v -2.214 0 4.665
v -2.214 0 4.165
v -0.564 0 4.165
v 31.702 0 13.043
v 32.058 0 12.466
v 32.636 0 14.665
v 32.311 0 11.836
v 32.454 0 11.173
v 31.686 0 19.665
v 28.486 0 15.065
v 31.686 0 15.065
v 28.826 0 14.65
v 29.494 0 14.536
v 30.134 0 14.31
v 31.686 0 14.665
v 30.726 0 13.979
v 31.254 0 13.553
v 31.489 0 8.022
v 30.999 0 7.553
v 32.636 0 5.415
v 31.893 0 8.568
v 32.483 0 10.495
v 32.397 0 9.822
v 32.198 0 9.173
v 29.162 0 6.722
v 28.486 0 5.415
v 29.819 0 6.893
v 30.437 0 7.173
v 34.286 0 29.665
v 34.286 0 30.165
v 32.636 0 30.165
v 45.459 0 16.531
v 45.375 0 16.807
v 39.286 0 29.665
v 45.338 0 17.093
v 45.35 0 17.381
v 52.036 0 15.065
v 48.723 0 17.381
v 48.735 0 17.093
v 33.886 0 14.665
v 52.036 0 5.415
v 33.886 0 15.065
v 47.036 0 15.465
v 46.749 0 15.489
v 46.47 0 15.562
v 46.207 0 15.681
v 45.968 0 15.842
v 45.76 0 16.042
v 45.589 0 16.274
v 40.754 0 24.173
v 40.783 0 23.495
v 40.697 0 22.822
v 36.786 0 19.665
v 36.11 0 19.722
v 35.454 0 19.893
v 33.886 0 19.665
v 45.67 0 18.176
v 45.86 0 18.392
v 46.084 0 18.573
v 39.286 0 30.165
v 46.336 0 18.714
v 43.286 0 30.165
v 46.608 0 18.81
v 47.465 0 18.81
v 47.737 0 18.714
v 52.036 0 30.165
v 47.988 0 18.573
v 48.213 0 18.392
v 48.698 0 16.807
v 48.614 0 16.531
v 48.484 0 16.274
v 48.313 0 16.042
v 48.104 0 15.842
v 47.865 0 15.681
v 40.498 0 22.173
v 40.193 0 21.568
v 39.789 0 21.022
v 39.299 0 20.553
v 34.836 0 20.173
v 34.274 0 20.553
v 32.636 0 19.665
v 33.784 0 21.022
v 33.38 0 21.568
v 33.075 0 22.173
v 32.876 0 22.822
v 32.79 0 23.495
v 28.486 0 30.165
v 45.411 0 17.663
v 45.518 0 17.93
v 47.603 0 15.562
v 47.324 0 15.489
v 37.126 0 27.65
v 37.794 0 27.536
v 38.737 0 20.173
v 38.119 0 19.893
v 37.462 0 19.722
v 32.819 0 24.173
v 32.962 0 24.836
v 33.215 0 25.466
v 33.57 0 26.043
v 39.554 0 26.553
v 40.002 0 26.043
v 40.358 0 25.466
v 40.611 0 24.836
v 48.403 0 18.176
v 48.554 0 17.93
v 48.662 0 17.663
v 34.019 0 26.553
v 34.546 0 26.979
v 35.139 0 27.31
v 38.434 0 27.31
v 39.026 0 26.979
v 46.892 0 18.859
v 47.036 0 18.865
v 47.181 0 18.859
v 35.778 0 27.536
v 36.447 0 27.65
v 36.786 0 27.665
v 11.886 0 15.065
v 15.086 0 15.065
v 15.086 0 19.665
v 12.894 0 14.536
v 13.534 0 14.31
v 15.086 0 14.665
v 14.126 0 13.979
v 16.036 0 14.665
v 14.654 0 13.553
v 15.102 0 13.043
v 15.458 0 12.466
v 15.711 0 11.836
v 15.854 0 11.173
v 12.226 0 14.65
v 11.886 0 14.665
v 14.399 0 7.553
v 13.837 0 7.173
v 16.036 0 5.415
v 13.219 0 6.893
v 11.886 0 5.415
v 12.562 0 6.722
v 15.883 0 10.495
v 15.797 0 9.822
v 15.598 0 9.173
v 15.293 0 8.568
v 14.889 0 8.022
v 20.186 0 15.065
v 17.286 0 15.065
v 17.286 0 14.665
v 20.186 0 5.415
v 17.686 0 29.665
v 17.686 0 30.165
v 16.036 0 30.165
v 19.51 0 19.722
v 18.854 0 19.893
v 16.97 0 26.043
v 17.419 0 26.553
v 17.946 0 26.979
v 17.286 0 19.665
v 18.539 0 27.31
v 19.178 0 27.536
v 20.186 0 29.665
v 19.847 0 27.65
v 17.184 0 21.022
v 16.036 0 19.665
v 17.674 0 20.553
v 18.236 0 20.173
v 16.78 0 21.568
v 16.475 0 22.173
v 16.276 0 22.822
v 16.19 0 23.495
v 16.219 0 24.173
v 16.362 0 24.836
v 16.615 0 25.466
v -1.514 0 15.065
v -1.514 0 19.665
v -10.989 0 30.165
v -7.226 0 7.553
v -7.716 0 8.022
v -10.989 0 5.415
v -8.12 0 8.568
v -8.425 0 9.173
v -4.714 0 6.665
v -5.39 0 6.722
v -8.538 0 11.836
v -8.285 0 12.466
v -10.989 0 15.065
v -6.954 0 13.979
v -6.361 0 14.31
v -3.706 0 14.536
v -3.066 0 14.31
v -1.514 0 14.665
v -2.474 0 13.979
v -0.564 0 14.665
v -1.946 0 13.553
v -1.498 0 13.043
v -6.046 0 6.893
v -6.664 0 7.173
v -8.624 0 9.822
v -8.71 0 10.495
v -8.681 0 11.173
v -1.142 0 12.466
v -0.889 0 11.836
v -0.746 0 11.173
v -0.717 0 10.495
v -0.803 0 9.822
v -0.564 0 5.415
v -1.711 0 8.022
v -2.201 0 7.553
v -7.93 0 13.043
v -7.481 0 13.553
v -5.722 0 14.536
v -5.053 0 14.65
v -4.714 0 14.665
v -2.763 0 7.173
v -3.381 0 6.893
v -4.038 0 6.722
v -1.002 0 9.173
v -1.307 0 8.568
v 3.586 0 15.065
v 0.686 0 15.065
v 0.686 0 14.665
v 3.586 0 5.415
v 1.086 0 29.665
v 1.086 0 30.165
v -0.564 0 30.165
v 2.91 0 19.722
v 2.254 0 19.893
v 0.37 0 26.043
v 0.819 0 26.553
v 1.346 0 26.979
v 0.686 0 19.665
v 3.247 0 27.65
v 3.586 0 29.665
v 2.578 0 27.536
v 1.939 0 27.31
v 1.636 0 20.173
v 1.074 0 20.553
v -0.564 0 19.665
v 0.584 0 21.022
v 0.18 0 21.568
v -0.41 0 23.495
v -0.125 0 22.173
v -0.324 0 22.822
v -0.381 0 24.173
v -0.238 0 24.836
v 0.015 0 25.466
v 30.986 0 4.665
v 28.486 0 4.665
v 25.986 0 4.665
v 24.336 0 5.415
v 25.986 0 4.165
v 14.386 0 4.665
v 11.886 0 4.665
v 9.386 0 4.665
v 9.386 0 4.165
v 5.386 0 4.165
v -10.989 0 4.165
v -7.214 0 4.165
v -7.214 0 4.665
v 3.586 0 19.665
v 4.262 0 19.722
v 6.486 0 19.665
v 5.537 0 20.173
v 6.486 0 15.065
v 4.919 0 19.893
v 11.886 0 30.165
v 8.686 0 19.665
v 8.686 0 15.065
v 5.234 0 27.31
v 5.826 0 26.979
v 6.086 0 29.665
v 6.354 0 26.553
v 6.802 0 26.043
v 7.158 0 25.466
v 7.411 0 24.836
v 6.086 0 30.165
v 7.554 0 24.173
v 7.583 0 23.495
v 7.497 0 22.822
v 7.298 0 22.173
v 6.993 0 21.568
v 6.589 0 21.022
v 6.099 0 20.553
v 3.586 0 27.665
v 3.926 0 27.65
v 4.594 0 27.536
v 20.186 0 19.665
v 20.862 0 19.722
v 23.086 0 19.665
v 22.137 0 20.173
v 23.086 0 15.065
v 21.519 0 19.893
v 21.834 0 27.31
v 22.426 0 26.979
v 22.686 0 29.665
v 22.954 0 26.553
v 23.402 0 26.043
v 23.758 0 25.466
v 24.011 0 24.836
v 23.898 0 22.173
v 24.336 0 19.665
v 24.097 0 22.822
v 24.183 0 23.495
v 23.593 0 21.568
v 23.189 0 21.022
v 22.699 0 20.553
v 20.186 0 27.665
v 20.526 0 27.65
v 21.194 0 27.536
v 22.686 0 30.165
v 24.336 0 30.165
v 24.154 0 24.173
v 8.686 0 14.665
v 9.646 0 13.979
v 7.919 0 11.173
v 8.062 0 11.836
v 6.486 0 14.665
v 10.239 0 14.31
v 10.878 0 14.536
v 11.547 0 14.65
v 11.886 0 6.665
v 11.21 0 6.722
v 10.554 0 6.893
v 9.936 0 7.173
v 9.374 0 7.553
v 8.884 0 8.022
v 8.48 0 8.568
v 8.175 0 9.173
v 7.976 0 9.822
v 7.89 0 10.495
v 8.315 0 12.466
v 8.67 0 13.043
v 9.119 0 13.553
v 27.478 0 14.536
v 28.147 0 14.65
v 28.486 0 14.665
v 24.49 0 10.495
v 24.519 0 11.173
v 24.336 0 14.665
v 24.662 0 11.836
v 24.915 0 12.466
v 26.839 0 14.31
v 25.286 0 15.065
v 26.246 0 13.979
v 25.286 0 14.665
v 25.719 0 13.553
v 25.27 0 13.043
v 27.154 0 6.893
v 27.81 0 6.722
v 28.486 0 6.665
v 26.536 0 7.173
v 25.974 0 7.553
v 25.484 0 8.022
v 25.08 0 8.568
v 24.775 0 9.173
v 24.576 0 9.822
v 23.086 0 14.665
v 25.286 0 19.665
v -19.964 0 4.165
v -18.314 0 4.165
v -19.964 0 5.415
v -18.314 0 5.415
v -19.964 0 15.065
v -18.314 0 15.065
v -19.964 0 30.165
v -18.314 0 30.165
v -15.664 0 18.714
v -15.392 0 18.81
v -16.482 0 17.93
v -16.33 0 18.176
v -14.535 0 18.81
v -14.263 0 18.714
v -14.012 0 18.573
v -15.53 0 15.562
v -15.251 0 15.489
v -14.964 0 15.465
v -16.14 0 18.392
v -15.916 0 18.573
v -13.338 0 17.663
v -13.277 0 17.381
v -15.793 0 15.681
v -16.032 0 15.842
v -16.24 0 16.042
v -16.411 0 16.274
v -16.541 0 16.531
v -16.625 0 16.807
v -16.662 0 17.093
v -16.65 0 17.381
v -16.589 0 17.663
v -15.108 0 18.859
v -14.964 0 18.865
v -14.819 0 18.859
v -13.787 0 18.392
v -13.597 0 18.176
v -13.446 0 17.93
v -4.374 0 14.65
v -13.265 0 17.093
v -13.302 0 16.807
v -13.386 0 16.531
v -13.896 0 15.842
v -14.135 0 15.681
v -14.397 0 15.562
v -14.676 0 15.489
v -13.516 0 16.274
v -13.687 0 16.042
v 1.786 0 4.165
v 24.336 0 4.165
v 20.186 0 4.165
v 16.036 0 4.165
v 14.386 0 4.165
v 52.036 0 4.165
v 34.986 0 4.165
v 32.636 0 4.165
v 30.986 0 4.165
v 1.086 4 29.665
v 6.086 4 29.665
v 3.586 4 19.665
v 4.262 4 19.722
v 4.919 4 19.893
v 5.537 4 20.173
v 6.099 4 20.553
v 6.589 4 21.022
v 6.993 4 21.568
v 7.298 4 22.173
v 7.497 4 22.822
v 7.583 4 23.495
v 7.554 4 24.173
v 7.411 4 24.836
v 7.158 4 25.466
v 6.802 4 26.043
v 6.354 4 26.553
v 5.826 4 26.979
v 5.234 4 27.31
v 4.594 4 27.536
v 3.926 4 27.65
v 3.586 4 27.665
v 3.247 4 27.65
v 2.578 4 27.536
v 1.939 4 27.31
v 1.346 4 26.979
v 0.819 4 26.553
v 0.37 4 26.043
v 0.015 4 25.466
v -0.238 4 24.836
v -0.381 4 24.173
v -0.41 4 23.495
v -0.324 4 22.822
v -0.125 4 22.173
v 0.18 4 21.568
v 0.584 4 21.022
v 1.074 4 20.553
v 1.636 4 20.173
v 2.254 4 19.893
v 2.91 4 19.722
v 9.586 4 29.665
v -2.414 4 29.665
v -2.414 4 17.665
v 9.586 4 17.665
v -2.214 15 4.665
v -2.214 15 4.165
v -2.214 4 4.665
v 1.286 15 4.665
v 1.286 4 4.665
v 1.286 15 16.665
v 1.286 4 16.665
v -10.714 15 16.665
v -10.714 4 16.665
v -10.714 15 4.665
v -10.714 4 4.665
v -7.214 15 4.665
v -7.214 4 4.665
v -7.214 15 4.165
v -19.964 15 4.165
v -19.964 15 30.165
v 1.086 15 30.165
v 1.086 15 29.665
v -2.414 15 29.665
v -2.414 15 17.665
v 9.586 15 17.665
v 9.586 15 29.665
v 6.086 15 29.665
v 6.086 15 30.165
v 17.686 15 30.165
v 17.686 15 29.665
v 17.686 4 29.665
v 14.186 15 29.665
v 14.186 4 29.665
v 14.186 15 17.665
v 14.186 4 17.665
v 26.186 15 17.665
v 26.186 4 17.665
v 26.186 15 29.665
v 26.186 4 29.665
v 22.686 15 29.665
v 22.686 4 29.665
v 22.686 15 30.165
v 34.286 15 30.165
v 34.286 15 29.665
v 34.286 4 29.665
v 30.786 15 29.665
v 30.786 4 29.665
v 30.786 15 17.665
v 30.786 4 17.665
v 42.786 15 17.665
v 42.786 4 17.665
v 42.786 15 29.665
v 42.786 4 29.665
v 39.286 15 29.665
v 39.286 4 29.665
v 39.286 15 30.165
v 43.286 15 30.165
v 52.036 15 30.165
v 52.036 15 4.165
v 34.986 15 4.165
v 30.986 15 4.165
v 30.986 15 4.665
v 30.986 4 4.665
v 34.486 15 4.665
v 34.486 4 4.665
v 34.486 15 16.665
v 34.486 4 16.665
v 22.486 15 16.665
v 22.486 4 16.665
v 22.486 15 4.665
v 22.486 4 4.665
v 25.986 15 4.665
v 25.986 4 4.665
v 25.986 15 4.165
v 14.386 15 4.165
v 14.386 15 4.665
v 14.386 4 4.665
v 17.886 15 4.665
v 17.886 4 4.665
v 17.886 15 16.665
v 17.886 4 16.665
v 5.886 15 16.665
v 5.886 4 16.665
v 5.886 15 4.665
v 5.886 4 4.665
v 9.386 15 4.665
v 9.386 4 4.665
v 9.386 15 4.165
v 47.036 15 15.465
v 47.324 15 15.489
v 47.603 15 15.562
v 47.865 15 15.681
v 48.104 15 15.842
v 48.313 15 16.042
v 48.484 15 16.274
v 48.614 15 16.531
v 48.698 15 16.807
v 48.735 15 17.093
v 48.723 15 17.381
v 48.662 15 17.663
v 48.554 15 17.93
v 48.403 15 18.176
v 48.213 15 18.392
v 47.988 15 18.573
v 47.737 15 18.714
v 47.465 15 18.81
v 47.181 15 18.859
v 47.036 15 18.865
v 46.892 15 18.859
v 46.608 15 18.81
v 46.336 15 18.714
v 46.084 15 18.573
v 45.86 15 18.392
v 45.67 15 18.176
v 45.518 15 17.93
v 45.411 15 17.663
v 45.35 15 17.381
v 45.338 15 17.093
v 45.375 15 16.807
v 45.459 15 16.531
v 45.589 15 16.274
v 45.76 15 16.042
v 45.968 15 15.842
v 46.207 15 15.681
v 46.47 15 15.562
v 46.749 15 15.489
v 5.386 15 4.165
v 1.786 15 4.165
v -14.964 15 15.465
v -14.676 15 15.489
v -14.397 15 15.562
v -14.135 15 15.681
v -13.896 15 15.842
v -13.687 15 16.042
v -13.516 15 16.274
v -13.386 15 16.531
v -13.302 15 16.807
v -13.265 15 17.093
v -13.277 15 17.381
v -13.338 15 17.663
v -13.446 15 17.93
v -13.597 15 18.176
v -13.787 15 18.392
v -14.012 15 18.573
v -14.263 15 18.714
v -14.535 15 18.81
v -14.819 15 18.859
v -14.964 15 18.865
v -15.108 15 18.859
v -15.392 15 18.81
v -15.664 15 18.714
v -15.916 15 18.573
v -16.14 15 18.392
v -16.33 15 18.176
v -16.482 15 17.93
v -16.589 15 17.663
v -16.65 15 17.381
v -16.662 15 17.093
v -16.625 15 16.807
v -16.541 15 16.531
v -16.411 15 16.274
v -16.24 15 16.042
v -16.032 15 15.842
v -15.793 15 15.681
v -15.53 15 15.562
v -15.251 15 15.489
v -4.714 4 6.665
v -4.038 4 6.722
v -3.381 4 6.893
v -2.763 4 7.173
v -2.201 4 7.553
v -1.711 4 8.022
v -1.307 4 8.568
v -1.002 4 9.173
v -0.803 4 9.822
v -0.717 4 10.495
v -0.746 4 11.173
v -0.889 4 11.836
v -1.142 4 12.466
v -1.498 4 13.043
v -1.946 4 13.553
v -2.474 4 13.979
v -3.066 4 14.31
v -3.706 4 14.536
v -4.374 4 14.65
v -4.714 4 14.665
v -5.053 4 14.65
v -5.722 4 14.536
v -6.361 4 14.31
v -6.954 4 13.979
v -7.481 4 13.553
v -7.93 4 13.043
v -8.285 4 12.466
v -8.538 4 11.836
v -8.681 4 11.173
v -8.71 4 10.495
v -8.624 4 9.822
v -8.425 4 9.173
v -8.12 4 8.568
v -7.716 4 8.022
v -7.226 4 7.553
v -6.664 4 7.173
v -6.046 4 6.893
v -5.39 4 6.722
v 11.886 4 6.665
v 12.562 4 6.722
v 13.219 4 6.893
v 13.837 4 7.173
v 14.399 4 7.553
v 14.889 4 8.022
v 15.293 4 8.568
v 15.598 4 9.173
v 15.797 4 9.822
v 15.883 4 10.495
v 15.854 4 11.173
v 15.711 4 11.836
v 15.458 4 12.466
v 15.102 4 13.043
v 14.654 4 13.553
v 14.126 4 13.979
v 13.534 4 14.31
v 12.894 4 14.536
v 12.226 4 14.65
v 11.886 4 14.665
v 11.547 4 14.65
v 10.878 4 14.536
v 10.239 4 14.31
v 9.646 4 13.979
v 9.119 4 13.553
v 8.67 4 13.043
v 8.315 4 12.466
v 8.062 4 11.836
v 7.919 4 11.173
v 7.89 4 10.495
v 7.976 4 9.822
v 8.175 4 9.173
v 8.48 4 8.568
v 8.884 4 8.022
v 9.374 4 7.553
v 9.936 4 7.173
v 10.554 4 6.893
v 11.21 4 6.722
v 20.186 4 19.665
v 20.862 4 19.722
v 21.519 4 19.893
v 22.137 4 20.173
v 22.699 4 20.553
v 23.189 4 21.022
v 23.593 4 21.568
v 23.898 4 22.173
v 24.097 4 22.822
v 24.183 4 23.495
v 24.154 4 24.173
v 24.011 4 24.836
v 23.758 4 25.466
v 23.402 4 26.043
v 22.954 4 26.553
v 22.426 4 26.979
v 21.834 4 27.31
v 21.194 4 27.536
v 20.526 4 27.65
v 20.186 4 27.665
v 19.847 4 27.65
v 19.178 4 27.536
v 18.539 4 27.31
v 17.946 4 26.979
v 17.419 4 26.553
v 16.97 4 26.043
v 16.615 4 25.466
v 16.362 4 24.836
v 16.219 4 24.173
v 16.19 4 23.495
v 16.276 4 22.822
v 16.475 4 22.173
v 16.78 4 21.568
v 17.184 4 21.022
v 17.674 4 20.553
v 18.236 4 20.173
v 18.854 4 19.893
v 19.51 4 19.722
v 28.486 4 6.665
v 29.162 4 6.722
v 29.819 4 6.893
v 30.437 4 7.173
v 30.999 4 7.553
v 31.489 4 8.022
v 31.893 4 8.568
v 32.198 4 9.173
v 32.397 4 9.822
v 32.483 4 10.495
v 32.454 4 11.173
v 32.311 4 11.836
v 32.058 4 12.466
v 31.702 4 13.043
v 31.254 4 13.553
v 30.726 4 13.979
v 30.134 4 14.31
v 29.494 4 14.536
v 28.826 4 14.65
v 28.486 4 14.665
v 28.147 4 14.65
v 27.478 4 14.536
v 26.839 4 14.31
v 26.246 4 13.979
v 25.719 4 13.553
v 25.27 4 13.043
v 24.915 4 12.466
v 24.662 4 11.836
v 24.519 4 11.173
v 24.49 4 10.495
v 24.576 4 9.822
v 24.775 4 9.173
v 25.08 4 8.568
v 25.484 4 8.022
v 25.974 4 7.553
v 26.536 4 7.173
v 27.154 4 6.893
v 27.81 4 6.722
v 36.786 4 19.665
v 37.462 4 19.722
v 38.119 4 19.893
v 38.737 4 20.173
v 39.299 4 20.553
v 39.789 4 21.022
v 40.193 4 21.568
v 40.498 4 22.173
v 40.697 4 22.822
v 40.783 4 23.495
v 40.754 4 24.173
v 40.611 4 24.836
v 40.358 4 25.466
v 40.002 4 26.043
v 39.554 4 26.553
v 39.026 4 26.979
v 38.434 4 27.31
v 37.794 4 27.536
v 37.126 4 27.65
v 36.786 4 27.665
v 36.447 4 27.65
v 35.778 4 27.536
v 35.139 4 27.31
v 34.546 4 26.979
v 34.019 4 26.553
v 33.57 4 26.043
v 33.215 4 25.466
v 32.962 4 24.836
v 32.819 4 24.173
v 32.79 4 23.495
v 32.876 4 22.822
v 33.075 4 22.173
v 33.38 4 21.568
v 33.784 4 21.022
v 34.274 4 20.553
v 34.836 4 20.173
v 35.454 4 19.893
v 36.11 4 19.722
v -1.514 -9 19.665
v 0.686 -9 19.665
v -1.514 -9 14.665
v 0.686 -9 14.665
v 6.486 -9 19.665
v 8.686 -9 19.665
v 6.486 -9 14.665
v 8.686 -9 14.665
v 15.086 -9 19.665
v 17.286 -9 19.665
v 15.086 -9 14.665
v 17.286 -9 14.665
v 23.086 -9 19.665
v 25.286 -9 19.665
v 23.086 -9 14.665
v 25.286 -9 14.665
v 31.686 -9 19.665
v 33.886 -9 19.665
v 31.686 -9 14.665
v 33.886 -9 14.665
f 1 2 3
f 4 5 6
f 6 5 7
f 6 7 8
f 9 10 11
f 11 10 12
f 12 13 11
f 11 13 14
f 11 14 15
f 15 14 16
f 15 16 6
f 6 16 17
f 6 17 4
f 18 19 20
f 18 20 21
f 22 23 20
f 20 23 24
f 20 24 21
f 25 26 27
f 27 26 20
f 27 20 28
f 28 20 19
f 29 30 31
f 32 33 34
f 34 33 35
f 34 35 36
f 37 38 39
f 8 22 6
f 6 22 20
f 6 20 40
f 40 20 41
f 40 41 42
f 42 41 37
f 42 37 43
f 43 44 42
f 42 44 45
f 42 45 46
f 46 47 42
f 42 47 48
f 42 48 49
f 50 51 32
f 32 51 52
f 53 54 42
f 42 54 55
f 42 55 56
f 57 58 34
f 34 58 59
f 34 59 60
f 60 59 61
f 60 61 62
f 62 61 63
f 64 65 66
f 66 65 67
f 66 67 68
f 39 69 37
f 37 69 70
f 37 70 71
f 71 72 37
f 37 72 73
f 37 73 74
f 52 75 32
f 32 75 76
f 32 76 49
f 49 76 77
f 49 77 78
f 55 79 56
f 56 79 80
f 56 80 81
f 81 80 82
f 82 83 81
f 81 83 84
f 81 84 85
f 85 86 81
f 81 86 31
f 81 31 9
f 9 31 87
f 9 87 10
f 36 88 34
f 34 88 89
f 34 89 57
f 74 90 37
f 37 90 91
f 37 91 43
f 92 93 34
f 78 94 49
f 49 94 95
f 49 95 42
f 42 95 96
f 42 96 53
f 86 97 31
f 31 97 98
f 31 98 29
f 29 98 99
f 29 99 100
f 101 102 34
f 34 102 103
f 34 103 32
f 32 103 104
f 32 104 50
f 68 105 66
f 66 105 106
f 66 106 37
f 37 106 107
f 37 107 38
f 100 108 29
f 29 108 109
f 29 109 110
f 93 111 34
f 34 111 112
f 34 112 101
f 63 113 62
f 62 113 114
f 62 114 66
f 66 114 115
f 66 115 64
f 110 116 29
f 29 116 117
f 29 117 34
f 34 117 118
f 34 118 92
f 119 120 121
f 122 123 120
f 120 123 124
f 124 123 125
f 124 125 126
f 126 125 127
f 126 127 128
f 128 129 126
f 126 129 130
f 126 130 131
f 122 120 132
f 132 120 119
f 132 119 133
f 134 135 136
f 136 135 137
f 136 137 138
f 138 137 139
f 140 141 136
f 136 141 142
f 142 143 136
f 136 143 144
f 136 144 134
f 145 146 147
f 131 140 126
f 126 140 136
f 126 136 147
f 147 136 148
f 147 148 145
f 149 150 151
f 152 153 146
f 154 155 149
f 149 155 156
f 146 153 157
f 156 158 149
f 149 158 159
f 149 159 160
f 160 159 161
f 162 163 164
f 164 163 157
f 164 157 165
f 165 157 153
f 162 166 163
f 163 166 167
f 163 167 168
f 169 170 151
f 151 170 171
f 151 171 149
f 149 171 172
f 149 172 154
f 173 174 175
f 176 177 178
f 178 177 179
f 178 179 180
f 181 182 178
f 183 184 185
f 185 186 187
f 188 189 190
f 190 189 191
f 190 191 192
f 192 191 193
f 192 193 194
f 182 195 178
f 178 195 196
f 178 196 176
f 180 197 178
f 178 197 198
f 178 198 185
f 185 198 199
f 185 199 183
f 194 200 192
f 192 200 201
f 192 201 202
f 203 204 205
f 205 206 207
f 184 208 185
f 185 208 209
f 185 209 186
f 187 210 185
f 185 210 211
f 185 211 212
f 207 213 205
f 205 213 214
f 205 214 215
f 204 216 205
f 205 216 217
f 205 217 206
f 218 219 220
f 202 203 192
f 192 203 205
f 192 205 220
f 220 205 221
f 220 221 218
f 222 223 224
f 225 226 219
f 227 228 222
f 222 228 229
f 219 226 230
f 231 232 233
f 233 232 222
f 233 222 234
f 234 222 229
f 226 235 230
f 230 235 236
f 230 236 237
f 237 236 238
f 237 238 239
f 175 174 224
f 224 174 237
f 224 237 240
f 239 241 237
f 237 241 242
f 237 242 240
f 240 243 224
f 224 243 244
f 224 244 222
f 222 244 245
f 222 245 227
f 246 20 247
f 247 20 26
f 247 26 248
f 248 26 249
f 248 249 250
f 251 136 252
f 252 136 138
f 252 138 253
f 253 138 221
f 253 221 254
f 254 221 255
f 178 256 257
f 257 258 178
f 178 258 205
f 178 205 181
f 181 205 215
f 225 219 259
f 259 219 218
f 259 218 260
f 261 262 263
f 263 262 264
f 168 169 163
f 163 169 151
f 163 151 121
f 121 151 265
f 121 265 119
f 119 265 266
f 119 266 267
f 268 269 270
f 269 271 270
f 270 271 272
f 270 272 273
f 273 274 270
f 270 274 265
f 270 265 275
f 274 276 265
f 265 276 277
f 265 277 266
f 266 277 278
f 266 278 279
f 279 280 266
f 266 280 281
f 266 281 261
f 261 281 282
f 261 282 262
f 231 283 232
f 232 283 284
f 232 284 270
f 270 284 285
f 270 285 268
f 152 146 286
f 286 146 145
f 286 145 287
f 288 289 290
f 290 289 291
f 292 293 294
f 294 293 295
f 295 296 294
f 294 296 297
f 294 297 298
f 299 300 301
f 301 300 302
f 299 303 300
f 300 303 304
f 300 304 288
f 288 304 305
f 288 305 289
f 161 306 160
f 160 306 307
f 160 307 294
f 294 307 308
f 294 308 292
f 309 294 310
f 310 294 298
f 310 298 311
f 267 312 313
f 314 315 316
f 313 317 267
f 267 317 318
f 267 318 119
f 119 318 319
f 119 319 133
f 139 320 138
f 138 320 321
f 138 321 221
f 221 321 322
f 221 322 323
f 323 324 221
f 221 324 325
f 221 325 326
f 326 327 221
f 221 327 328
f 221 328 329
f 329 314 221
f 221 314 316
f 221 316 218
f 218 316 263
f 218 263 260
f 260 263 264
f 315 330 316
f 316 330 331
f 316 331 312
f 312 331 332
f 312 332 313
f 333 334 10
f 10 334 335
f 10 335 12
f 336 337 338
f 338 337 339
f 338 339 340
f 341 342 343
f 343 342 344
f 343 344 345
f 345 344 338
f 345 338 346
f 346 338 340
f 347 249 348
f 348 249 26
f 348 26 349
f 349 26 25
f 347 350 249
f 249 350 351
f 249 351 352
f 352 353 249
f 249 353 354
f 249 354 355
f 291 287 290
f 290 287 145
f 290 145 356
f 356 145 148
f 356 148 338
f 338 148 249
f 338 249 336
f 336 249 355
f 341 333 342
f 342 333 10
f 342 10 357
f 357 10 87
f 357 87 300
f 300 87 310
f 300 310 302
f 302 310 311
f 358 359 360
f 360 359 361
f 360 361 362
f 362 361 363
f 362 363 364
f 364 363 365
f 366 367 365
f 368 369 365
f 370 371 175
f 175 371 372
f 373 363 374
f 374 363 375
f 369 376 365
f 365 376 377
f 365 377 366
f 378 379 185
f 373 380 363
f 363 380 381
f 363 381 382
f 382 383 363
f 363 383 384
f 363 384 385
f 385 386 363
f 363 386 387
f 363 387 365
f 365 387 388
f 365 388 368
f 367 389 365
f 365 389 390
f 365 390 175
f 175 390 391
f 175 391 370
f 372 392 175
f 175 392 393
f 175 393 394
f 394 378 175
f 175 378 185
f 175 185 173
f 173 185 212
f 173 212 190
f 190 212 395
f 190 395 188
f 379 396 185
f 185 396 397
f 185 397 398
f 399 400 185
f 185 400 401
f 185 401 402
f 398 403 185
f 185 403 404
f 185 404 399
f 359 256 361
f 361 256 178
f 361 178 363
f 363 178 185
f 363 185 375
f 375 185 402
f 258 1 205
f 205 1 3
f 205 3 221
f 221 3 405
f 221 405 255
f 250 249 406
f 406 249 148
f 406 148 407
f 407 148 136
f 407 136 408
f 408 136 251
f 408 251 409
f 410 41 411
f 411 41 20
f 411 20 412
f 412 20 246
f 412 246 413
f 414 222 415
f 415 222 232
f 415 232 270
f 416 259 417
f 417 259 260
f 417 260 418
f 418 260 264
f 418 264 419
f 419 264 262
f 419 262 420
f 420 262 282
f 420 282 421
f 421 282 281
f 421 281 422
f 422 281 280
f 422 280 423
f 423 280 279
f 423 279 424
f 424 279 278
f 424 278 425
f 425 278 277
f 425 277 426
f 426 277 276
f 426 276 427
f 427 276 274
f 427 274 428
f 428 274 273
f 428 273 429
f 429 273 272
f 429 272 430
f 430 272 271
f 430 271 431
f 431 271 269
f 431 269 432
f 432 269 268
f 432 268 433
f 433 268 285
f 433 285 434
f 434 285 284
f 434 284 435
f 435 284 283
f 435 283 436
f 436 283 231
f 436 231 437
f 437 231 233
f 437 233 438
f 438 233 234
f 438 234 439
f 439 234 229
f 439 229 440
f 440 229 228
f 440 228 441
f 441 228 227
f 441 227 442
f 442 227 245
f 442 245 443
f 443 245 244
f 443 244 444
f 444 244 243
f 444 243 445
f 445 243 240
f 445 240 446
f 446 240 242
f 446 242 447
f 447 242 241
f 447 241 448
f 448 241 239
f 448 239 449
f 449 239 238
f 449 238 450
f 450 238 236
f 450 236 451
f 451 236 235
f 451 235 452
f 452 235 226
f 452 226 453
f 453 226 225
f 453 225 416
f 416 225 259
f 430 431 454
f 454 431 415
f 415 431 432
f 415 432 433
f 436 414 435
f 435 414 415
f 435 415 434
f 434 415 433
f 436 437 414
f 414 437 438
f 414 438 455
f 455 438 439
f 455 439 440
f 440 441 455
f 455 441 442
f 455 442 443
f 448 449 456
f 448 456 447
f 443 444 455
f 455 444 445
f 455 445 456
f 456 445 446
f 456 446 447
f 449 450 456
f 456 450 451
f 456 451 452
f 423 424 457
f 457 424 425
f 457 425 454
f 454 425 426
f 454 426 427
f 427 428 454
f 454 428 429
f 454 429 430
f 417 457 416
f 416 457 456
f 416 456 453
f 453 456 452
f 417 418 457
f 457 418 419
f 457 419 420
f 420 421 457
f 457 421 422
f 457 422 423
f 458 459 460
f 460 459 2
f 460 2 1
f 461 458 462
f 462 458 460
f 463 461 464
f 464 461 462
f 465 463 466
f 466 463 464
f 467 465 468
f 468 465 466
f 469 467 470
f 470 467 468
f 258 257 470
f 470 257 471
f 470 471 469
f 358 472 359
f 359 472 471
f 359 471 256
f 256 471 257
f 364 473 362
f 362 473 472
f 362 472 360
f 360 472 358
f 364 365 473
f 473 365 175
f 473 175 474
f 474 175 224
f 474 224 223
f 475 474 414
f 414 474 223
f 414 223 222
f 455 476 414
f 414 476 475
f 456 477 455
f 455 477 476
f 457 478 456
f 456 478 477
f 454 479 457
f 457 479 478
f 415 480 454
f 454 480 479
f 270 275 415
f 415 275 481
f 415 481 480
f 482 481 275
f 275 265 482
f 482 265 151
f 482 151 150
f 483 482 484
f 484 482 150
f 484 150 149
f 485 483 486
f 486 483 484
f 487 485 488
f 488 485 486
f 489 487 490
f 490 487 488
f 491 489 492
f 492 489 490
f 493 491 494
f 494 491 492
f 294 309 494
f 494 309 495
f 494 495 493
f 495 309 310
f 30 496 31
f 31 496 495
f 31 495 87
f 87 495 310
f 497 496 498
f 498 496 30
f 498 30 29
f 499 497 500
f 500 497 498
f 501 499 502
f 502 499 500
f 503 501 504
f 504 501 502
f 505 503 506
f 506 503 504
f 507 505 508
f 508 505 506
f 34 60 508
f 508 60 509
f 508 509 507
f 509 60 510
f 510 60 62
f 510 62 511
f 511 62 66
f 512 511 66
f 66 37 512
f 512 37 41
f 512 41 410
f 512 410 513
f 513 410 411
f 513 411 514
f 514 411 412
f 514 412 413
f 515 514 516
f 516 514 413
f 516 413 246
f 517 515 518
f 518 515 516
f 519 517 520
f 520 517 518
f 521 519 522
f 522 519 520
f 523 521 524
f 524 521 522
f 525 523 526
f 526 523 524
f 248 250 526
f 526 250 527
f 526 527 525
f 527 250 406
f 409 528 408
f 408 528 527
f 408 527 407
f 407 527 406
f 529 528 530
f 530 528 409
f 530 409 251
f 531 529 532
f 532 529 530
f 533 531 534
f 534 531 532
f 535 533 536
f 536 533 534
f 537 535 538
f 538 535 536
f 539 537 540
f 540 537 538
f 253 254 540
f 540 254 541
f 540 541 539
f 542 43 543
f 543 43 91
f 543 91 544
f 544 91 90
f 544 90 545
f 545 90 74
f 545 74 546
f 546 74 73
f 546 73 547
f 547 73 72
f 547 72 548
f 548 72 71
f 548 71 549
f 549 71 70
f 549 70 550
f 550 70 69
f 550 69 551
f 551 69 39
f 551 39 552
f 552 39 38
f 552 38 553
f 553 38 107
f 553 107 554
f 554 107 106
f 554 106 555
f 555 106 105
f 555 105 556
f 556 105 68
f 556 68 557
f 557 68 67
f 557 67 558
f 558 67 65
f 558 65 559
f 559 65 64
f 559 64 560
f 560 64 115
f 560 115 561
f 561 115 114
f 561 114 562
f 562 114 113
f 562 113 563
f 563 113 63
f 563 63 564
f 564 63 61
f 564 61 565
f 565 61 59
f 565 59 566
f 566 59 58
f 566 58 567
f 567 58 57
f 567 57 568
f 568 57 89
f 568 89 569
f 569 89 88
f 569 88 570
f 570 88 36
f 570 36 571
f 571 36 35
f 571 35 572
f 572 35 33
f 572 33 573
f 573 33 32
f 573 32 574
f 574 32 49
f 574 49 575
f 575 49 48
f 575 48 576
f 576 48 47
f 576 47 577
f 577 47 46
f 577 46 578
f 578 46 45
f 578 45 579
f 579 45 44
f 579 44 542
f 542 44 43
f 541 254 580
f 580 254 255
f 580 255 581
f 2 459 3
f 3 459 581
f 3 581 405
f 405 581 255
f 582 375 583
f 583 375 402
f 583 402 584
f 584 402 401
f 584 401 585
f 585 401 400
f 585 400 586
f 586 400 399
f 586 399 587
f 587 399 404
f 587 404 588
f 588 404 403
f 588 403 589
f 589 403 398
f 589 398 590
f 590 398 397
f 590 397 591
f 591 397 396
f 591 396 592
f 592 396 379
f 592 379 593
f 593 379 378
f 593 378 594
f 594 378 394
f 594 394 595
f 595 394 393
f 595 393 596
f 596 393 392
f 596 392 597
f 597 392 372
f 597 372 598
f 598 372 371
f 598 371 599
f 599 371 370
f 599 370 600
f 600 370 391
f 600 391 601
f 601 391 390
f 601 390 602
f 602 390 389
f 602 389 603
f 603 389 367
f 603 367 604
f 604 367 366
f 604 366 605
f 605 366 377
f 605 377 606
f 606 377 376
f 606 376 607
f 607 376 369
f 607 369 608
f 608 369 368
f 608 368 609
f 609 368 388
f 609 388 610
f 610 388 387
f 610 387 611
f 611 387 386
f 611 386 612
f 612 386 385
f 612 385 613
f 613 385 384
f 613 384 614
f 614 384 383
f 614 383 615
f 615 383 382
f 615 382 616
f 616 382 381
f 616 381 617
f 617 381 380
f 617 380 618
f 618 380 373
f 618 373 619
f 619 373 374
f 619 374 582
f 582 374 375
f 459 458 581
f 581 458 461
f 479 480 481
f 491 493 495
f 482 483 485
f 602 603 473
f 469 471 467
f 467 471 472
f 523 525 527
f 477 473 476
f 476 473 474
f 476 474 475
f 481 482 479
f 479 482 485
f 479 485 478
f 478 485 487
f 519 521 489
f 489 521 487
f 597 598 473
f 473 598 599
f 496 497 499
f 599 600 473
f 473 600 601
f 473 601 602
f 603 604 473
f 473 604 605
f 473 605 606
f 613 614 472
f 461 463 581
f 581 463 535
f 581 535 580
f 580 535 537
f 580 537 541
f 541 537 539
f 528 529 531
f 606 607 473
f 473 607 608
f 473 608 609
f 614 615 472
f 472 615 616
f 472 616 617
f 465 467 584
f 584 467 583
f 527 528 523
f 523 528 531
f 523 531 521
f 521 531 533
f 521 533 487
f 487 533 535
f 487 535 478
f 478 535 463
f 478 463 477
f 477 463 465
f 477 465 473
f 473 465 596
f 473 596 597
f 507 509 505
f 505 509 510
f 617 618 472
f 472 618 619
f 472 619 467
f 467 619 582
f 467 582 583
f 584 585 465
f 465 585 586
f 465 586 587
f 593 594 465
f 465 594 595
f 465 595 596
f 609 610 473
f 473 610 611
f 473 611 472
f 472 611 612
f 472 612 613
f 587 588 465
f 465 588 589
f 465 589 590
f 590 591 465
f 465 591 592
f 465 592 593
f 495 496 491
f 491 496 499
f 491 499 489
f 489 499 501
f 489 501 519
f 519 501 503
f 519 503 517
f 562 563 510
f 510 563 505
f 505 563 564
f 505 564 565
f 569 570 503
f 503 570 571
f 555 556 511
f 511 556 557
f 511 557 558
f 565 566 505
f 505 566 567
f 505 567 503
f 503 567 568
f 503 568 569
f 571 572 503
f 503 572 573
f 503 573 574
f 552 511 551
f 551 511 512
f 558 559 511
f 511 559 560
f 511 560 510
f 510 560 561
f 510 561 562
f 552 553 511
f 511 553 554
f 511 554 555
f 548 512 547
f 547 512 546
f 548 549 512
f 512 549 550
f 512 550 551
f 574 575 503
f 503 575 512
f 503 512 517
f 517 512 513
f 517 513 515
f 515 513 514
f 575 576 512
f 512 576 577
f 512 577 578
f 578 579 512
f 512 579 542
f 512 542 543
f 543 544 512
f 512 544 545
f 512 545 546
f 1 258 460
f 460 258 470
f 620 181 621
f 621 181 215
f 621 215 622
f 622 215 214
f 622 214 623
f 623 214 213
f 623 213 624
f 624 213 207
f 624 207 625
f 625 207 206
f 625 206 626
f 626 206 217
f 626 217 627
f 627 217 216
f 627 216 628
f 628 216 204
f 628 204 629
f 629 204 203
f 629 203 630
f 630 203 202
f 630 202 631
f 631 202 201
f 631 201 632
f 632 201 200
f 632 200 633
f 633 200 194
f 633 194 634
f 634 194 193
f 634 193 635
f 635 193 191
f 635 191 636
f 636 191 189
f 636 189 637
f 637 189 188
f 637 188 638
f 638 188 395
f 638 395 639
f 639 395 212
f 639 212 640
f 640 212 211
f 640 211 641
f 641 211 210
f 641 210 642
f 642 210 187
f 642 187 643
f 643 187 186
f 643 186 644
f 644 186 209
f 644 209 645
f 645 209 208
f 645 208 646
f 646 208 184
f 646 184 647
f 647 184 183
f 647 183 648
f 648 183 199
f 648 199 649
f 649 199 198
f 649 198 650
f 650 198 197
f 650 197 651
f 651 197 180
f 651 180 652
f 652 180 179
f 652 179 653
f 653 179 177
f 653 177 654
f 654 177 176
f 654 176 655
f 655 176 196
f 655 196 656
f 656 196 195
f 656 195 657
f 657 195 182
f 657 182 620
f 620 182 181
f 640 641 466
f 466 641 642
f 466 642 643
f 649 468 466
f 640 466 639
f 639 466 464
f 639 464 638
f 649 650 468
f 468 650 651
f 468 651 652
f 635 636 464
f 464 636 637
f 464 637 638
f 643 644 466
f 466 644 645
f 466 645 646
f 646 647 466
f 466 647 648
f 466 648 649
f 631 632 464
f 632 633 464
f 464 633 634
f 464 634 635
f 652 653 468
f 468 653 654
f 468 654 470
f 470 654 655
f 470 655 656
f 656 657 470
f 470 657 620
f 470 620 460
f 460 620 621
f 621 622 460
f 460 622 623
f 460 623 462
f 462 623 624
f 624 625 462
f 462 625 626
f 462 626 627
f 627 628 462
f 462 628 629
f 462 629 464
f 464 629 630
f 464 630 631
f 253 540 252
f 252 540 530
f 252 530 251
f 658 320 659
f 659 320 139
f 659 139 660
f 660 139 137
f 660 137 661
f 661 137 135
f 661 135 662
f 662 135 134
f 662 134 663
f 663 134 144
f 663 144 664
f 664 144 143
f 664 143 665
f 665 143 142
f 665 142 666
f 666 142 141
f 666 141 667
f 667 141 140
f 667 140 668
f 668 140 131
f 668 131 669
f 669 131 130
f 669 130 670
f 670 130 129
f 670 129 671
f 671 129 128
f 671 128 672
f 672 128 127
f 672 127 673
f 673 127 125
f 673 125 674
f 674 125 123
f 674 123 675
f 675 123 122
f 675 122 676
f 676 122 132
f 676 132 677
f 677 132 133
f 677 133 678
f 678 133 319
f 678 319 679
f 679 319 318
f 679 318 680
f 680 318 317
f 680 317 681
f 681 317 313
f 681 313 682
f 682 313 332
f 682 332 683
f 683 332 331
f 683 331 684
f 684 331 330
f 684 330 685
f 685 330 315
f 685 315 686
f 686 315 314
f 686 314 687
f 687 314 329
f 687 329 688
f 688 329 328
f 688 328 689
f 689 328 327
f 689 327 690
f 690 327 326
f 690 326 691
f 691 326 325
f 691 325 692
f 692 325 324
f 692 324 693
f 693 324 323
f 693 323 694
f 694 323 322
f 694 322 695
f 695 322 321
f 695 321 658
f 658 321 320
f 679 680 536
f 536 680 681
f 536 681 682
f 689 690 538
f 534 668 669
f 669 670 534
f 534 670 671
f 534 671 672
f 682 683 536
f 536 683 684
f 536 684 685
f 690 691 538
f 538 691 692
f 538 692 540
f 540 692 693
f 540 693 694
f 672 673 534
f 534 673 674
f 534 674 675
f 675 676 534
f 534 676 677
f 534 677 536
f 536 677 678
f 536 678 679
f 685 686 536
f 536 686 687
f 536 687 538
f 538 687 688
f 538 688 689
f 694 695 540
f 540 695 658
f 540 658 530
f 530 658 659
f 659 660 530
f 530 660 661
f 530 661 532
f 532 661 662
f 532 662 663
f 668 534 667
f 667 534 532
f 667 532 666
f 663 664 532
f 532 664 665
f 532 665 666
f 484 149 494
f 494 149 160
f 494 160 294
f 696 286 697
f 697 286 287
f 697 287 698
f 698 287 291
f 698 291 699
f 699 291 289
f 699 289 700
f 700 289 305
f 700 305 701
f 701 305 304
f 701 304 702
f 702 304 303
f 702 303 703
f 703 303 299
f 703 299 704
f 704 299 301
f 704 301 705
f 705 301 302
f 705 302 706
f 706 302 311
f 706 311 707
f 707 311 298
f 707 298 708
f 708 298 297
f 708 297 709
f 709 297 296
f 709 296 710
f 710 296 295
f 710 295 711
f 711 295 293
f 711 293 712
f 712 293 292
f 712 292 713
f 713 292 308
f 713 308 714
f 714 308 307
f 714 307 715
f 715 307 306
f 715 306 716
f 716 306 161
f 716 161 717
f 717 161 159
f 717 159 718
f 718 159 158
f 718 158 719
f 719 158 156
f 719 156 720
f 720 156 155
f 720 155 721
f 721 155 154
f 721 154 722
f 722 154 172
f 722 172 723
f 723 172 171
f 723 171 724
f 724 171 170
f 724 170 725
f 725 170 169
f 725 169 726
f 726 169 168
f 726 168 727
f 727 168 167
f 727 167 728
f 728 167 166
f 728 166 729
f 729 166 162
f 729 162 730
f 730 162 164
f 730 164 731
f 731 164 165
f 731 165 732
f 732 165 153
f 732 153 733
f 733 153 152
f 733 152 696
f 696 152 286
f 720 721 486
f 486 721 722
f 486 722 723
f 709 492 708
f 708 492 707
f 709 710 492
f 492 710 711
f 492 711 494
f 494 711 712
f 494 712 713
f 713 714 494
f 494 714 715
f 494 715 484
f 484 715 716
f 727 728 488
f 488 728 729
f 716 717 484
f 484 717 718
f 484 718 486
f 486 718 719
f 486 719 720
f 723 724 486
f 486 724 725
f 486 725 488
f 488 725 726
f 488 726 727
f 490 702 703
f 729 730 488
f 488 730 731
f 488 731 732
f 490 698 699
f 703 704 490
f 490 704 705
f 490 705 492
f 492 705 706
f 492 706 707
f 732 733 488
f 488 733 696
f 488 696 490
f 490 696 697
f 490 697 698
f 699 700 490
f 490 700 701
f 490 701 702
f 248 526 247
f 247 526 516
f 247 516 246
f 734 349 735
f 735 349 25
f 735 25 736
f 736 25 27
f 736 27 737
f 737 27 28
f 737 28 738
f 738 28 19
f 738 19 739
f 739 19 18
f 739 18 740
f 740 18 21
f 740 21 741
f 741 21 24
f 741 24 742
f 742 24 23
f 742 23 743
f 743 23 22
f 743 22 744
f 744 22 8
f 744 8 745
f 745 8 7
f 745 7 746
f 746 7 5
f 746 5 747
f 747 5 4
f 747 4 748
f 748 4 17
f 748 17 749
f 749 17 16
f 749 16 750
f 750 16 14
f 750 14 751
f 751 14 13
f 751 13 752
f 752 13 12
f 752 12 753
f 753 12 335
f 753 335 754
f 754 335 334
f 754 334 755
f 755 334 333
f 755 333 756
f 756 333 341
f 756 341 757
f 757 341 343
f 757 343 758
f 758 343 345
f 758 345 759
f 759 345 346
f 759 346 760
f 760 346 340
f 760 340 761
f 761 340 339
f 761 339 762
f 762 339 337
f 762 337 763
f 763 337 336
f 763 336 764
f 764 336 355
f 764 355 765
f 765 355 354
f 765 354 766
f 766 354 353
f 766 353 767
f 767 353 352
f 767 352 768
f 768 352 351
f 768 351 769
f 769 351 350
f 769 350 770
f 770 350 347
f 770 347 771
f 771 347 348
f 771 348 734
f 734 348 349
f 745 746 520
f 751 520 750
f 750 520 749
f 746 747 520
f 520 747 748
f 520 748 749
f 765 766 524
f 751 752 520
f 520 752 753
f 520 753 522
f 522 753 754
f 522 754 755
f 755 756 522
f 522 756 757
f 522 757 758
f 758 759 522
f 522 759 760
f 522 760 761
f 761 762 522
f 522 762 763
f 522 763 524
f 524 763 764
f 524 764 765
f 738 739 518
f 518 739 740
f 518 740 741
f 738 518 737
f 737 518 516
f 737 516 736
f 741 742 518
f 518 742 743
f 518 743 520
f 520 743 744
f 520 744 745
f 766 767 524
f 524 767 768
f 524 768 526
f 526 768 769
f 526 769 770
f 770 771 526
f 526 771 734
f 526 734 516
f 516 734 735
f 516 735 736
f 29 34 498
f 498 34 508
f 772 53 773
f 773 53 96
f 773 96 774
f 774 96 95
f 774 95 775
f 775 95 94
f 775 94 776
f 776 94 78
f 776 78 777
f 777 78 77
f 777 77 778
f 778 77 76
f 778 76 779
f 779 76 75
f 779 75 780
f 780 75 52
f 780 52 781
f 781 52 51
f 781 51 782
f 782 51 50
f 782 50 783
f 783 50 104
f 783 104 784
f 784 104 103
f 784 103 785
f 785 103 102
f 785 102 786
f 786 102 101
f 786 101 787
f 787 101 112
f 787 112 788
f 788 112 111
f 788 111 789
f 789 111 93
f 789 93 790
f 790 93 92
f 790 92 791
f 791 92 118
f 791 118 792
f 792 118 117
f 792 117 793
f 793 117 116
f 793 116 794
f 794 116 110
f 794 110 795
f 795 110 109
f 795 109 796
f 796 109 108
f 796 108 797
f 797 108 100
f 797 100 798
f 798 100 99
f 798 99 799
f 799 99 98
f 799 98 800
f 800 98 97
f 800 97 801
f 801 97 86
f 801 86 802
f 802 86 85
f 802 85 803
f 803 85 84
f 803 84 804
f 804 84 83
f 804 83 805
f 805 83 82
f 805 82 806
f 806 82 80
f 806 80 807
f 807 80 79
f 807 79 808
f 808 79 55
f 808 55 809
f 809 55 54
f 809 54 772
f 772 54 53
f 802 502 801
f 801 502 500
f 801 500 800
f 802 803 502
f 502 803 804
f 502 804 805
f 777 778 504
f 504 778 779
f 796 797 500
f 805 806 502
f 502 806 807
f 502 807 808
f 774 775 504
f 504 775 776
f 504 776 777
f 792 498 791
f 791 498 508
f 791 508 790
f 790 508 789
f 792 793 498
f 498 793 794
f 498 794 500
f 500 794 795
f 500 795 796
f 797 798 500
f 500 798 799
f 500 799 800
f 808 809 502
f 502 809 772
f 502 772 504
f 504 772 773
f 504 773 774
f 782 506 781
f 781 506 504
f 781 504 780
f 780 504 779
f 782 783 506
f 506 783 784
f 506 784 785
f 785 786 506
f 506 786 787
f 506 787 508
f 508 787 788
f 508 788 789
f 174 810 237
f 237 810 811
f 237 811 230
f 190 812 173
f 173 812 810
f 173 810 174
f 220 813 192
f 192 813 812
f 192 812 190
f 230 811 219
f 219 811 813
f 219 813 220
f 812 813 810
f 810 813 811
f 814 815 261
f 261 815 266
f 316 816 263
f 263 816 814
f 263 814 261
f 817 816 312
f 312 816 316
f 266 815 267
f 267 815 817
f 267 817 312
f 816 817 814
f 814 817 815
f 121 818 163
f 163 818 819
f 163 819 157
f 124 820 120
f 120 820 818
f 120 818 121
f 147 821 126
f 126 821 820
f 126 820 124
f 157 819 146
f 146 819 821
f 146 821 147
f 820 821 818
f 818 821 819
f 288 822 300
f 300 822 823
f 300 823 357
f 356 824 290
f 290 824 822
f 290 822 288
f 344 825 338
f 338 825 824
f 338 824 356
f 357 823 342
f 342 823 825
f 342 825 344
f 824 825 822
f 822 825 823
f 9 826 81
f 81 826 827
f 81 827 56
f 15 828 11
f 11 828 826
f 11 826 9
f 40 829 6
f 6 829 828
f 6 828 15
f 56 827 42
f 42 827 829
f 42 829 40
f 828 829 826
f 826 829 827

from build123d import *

# Parameters (mm, degrees)
SKETCH1_W             = 12
SKETCH1_H             = 12
SKETCH1_R             = 4
BOSS_EXTRUDE1_DEPTH   = 4
BOSS_EXTRUDE1_2_DEPTH = 4
BOSS_EXTRUDE1_3_DEPTH = 4
BOSS_EXTRUDE1_4_DEPTH = 4
BOSS_EXTRUDE1_5_DEPTH = 4
BOSS_EXTRUDE1_6_DEPTH = 4
SKETCH1_3_R           = 1.7
BOSS_EXTRUDE2_DEPTH   = 15
SKETCH2_W             = 2.2
SKETCH2_H             = 5.00000001
SKETCH2_H_2           = 5.000000011
BOSS_EXTRUDE3_DEPTH   = 9


with BuildPart() as part:
    # Sketch1 → Boss-Extrude1 (new body)
    with BuildSketch(Plane(origin=(0, 0, 0), x_dir=(1, 0, 0), z_dir=(0, 1, 0))):
        with Locations((11.886385948, -10.664884408)):
            Rectangle(SKETCH1_W, SKETCH1_H)
        with Locations((11.886385948, -10.664884408)):
            Circle(SKETCH1_R, mode=Mode.SUBTRACT)
    extrude(amount=BOSS_EXTRUDE1_DEPTH)



with BuildPart() as body_2:
    # Sketch1 → Boss-Extrude1 2 (new body)
    with BuildSketch(Plane(origin=(0, 0, 0), x_dir=(1, 0, 0), z_dir=(0, 1, 0))):
        with Locations((-4.713614052, -10.664885052)):
            Rectangle(SKETCH1_W, SKETCH1_H)
        with Locations((-4.713614052, -10.664885052)):
            Circle(SKETCH1_R, mode=Mode.SUBTRACT)
    extrude(amount=BOSS_EXTRUDE1_2_DEPTH)


with BuildPart() as body_3:
    # Sketch1 → Boss-Extrude1 3 (new body)
    with BuildSketch(Plane(origin=(0, 0, 0), x_dir=(1, 0, 0), z_dir=(0, 1, 0))):
        with Locations((3.586385956, -23.664883973)):
            Rectangle(SKETCH1_W, SKETCH1_H)
        with Locations((3.586385956, -23.664883973)):
            Circle(SKETCH1_R, mode=Mode.SUBTRACT)
    extrude(amount=BOSS_EXTRUDE1_3_DEPTH)


with BuildPart() as body_4:
    # Sketch1 → Boss-Extrude1 4 (new body)
    with BuildSketch(Plane(origin=(0, 0, 0), x_dir=(1, 0, 0), z_dir=(0, 1, 0))):
        with Locations((20.186385956, -23.664884408)):
            Rectangle(SKETCH1_W, SKETCH1_H)
        with Locations((20.186385956, -23.664884408)):
            Circle(SKETCH1_R, mode=Mode.SUBTRACT)
    extrude(amount=BOSS_EXTRUDE1_4_DEPTH)


with BuildPart() as body_5:
    # Sketch1 → Boss-Extrude1 5 (new body)
    with BuildSketch(Plane(origin=(0, 0, 0), x_dir=(1, 0, 0), z_dir=(0, 1, 0))):
        with Locations((28.486385948, -10.664884408)):
            Rectangle(SKETCH1_W, SKETCH1_H)
        with Locations((28.486385948, -10.664884408)):
            Circle(SKETCH1_R, mode=Mode.SUBTRACT)
    extrude(amount=BOSS_EXTRUDE1_5_DEPTH)


with BuildPart() as body_6:
    # Sketch1 → Boss-Extrude1 6 (new body)
    with BuildSketch(Plane(origin=(0, 0, 0), x_dir=(1, 0, 0), z_dir=(0, 1, 0))):
        with Locations((36.786385956, -23.66488461)):
            Rectangle(SKETCH1_W, SKETCH1_H)
        with Locations((36.786385956, -23.66488461)):
            Circle(SKETCH1_R, mode=Mode.SUBTRACT)
    extrude(amount=BOSS_EXTRUDE1_6_DEPTH)


with BuildPart() as part_1:
    add(part.part)

    add(body_2.part)  # Boss-Extrude2 merges body 2

    add(body_3.part)  # Boss-Extrude2 merges body 3

    add(body_4.part)  # Boss-Extrude2 merges body 4

    add(body_5.part)  # Boss-Extrude2 merges body 5

    add(body_6.part)  # Boss-Extrude2 merges body 6
    # Sketch1<3> → Boss-Extrude2 (add)
    with BuildSketch(Plane(origin=(0, 0, 0), x_dir=(1, 0, 0), z_dir=(0, 1, 0))):
        Polygon((5.386385948, -4.164884408), (1.786385948, -4.164885052), (-2.213614052, -4.164885052), (-2.213614052, -4.664885052), (1.286385948, -4.664885052), (1.286385948, -16.664885052), (-10.713614052, -16.664885052), (-10.713614052, -4.664885052), (-7.213614052, -4.664885052), (-7.213614052, -4.164885052), (-19.963614052, -4.164885052), (-19.963614052, -30.164883973), (1.086385956, -30.164883973), (1.086385956, -29.664883973), (-2.413614044, -29.664883973), (-2.413614044, -17.664883973), (9.586385956, -17.664883973), (9.586385956, -29.664883973), (6.086385956, -29.664883973), (6.086385956, -30.164883973), (10.086385956, -30.164883973), (13.686385956, -30.164884408), (17.686385956, -30.164884408), (17.686385956, -29.664884408), (14.186385956, -29.664884408), (14.186385956, -17.664884408), (26.186385956, -17.664884408), (26.186385956, -29.664884408), (22.686385956, -29.664884408), (22.686385956, -30.164884408), (26.686385956, -30.164884408), (30.286385956, -30.16488461), (34.286385956, -30.16488461), (34.286385956, -29.66488461), (30.786385956, -29.66488461), (30.786385956, -17.66488461), (42.786385956, -17.66488461), (42.786385956, -29.66488461), (39.286385956, -29.66488461), (39.286385956, -30.16488461), (43.286385956, -30.16488461), (52.036385956, -30.164883973), (52.036385956, -4.164885052), (34.986385948, -4.164884408), (30.986385948, -4.164884408), (30.986385948, -4.664884408), (34.486385948, -4.664884408), (34.486385948, -16.664884408), (22.486385948, -16.664884408), (22.486385948, -4.664884408), (25.986385948, -4.664884408), (25.986385948, -4.164884408), (14.386385948, -4.164884408), (14.386385948, -4.664884408), (17.886385948, -4.664884408), (17.886385948, -16.664884408), (5.886385948, -16.664884408), (5.886385948, -4.664884408), (9.386385948, -4.664884408), (9.386385948, -4.164884408), align=None)
        with Locations((-14.963614052, -17.164884513)):
            Circle(SKETCH1_3_R, mode=Mode.SUBTRACT)
        with Locations((47.036385956, -17.164884513)):
            Circle(SKETCH1_3_R, mode=Mode.SUBTRACT)
    extrude(amount=BOSS_EXTRUDE2_DEPTH)

    # Sketch2 → Boss-Extrude3 (add)
    with BuildSketch(Plane.XZ):
        with Locations((-0.413614044, 17.164884518)):
            Rectangle(SKETCH2_W, SKETCH2_H)
        with Locations((7.586385956, 17.164884518)):
            Rectangle(SKETCH2_W, SKETCH2_H)
        with Locations((16.186385956, 17.164884518)):
            Rectangle(SKETCH2_W, SKETCH2_H)
        with Locations((24.186385956, 17.164884518)):
            Rectangle(SKETCH2_W, SKETCH2_H)
        with Locations((32.786385956, 17.164884508)):
            Rectangle(SKETCH2_W, SKETCH2_H_2)
    extrude(amount=BOSS_EXTRUDE3_DEPTH)


solid = part_1.part
